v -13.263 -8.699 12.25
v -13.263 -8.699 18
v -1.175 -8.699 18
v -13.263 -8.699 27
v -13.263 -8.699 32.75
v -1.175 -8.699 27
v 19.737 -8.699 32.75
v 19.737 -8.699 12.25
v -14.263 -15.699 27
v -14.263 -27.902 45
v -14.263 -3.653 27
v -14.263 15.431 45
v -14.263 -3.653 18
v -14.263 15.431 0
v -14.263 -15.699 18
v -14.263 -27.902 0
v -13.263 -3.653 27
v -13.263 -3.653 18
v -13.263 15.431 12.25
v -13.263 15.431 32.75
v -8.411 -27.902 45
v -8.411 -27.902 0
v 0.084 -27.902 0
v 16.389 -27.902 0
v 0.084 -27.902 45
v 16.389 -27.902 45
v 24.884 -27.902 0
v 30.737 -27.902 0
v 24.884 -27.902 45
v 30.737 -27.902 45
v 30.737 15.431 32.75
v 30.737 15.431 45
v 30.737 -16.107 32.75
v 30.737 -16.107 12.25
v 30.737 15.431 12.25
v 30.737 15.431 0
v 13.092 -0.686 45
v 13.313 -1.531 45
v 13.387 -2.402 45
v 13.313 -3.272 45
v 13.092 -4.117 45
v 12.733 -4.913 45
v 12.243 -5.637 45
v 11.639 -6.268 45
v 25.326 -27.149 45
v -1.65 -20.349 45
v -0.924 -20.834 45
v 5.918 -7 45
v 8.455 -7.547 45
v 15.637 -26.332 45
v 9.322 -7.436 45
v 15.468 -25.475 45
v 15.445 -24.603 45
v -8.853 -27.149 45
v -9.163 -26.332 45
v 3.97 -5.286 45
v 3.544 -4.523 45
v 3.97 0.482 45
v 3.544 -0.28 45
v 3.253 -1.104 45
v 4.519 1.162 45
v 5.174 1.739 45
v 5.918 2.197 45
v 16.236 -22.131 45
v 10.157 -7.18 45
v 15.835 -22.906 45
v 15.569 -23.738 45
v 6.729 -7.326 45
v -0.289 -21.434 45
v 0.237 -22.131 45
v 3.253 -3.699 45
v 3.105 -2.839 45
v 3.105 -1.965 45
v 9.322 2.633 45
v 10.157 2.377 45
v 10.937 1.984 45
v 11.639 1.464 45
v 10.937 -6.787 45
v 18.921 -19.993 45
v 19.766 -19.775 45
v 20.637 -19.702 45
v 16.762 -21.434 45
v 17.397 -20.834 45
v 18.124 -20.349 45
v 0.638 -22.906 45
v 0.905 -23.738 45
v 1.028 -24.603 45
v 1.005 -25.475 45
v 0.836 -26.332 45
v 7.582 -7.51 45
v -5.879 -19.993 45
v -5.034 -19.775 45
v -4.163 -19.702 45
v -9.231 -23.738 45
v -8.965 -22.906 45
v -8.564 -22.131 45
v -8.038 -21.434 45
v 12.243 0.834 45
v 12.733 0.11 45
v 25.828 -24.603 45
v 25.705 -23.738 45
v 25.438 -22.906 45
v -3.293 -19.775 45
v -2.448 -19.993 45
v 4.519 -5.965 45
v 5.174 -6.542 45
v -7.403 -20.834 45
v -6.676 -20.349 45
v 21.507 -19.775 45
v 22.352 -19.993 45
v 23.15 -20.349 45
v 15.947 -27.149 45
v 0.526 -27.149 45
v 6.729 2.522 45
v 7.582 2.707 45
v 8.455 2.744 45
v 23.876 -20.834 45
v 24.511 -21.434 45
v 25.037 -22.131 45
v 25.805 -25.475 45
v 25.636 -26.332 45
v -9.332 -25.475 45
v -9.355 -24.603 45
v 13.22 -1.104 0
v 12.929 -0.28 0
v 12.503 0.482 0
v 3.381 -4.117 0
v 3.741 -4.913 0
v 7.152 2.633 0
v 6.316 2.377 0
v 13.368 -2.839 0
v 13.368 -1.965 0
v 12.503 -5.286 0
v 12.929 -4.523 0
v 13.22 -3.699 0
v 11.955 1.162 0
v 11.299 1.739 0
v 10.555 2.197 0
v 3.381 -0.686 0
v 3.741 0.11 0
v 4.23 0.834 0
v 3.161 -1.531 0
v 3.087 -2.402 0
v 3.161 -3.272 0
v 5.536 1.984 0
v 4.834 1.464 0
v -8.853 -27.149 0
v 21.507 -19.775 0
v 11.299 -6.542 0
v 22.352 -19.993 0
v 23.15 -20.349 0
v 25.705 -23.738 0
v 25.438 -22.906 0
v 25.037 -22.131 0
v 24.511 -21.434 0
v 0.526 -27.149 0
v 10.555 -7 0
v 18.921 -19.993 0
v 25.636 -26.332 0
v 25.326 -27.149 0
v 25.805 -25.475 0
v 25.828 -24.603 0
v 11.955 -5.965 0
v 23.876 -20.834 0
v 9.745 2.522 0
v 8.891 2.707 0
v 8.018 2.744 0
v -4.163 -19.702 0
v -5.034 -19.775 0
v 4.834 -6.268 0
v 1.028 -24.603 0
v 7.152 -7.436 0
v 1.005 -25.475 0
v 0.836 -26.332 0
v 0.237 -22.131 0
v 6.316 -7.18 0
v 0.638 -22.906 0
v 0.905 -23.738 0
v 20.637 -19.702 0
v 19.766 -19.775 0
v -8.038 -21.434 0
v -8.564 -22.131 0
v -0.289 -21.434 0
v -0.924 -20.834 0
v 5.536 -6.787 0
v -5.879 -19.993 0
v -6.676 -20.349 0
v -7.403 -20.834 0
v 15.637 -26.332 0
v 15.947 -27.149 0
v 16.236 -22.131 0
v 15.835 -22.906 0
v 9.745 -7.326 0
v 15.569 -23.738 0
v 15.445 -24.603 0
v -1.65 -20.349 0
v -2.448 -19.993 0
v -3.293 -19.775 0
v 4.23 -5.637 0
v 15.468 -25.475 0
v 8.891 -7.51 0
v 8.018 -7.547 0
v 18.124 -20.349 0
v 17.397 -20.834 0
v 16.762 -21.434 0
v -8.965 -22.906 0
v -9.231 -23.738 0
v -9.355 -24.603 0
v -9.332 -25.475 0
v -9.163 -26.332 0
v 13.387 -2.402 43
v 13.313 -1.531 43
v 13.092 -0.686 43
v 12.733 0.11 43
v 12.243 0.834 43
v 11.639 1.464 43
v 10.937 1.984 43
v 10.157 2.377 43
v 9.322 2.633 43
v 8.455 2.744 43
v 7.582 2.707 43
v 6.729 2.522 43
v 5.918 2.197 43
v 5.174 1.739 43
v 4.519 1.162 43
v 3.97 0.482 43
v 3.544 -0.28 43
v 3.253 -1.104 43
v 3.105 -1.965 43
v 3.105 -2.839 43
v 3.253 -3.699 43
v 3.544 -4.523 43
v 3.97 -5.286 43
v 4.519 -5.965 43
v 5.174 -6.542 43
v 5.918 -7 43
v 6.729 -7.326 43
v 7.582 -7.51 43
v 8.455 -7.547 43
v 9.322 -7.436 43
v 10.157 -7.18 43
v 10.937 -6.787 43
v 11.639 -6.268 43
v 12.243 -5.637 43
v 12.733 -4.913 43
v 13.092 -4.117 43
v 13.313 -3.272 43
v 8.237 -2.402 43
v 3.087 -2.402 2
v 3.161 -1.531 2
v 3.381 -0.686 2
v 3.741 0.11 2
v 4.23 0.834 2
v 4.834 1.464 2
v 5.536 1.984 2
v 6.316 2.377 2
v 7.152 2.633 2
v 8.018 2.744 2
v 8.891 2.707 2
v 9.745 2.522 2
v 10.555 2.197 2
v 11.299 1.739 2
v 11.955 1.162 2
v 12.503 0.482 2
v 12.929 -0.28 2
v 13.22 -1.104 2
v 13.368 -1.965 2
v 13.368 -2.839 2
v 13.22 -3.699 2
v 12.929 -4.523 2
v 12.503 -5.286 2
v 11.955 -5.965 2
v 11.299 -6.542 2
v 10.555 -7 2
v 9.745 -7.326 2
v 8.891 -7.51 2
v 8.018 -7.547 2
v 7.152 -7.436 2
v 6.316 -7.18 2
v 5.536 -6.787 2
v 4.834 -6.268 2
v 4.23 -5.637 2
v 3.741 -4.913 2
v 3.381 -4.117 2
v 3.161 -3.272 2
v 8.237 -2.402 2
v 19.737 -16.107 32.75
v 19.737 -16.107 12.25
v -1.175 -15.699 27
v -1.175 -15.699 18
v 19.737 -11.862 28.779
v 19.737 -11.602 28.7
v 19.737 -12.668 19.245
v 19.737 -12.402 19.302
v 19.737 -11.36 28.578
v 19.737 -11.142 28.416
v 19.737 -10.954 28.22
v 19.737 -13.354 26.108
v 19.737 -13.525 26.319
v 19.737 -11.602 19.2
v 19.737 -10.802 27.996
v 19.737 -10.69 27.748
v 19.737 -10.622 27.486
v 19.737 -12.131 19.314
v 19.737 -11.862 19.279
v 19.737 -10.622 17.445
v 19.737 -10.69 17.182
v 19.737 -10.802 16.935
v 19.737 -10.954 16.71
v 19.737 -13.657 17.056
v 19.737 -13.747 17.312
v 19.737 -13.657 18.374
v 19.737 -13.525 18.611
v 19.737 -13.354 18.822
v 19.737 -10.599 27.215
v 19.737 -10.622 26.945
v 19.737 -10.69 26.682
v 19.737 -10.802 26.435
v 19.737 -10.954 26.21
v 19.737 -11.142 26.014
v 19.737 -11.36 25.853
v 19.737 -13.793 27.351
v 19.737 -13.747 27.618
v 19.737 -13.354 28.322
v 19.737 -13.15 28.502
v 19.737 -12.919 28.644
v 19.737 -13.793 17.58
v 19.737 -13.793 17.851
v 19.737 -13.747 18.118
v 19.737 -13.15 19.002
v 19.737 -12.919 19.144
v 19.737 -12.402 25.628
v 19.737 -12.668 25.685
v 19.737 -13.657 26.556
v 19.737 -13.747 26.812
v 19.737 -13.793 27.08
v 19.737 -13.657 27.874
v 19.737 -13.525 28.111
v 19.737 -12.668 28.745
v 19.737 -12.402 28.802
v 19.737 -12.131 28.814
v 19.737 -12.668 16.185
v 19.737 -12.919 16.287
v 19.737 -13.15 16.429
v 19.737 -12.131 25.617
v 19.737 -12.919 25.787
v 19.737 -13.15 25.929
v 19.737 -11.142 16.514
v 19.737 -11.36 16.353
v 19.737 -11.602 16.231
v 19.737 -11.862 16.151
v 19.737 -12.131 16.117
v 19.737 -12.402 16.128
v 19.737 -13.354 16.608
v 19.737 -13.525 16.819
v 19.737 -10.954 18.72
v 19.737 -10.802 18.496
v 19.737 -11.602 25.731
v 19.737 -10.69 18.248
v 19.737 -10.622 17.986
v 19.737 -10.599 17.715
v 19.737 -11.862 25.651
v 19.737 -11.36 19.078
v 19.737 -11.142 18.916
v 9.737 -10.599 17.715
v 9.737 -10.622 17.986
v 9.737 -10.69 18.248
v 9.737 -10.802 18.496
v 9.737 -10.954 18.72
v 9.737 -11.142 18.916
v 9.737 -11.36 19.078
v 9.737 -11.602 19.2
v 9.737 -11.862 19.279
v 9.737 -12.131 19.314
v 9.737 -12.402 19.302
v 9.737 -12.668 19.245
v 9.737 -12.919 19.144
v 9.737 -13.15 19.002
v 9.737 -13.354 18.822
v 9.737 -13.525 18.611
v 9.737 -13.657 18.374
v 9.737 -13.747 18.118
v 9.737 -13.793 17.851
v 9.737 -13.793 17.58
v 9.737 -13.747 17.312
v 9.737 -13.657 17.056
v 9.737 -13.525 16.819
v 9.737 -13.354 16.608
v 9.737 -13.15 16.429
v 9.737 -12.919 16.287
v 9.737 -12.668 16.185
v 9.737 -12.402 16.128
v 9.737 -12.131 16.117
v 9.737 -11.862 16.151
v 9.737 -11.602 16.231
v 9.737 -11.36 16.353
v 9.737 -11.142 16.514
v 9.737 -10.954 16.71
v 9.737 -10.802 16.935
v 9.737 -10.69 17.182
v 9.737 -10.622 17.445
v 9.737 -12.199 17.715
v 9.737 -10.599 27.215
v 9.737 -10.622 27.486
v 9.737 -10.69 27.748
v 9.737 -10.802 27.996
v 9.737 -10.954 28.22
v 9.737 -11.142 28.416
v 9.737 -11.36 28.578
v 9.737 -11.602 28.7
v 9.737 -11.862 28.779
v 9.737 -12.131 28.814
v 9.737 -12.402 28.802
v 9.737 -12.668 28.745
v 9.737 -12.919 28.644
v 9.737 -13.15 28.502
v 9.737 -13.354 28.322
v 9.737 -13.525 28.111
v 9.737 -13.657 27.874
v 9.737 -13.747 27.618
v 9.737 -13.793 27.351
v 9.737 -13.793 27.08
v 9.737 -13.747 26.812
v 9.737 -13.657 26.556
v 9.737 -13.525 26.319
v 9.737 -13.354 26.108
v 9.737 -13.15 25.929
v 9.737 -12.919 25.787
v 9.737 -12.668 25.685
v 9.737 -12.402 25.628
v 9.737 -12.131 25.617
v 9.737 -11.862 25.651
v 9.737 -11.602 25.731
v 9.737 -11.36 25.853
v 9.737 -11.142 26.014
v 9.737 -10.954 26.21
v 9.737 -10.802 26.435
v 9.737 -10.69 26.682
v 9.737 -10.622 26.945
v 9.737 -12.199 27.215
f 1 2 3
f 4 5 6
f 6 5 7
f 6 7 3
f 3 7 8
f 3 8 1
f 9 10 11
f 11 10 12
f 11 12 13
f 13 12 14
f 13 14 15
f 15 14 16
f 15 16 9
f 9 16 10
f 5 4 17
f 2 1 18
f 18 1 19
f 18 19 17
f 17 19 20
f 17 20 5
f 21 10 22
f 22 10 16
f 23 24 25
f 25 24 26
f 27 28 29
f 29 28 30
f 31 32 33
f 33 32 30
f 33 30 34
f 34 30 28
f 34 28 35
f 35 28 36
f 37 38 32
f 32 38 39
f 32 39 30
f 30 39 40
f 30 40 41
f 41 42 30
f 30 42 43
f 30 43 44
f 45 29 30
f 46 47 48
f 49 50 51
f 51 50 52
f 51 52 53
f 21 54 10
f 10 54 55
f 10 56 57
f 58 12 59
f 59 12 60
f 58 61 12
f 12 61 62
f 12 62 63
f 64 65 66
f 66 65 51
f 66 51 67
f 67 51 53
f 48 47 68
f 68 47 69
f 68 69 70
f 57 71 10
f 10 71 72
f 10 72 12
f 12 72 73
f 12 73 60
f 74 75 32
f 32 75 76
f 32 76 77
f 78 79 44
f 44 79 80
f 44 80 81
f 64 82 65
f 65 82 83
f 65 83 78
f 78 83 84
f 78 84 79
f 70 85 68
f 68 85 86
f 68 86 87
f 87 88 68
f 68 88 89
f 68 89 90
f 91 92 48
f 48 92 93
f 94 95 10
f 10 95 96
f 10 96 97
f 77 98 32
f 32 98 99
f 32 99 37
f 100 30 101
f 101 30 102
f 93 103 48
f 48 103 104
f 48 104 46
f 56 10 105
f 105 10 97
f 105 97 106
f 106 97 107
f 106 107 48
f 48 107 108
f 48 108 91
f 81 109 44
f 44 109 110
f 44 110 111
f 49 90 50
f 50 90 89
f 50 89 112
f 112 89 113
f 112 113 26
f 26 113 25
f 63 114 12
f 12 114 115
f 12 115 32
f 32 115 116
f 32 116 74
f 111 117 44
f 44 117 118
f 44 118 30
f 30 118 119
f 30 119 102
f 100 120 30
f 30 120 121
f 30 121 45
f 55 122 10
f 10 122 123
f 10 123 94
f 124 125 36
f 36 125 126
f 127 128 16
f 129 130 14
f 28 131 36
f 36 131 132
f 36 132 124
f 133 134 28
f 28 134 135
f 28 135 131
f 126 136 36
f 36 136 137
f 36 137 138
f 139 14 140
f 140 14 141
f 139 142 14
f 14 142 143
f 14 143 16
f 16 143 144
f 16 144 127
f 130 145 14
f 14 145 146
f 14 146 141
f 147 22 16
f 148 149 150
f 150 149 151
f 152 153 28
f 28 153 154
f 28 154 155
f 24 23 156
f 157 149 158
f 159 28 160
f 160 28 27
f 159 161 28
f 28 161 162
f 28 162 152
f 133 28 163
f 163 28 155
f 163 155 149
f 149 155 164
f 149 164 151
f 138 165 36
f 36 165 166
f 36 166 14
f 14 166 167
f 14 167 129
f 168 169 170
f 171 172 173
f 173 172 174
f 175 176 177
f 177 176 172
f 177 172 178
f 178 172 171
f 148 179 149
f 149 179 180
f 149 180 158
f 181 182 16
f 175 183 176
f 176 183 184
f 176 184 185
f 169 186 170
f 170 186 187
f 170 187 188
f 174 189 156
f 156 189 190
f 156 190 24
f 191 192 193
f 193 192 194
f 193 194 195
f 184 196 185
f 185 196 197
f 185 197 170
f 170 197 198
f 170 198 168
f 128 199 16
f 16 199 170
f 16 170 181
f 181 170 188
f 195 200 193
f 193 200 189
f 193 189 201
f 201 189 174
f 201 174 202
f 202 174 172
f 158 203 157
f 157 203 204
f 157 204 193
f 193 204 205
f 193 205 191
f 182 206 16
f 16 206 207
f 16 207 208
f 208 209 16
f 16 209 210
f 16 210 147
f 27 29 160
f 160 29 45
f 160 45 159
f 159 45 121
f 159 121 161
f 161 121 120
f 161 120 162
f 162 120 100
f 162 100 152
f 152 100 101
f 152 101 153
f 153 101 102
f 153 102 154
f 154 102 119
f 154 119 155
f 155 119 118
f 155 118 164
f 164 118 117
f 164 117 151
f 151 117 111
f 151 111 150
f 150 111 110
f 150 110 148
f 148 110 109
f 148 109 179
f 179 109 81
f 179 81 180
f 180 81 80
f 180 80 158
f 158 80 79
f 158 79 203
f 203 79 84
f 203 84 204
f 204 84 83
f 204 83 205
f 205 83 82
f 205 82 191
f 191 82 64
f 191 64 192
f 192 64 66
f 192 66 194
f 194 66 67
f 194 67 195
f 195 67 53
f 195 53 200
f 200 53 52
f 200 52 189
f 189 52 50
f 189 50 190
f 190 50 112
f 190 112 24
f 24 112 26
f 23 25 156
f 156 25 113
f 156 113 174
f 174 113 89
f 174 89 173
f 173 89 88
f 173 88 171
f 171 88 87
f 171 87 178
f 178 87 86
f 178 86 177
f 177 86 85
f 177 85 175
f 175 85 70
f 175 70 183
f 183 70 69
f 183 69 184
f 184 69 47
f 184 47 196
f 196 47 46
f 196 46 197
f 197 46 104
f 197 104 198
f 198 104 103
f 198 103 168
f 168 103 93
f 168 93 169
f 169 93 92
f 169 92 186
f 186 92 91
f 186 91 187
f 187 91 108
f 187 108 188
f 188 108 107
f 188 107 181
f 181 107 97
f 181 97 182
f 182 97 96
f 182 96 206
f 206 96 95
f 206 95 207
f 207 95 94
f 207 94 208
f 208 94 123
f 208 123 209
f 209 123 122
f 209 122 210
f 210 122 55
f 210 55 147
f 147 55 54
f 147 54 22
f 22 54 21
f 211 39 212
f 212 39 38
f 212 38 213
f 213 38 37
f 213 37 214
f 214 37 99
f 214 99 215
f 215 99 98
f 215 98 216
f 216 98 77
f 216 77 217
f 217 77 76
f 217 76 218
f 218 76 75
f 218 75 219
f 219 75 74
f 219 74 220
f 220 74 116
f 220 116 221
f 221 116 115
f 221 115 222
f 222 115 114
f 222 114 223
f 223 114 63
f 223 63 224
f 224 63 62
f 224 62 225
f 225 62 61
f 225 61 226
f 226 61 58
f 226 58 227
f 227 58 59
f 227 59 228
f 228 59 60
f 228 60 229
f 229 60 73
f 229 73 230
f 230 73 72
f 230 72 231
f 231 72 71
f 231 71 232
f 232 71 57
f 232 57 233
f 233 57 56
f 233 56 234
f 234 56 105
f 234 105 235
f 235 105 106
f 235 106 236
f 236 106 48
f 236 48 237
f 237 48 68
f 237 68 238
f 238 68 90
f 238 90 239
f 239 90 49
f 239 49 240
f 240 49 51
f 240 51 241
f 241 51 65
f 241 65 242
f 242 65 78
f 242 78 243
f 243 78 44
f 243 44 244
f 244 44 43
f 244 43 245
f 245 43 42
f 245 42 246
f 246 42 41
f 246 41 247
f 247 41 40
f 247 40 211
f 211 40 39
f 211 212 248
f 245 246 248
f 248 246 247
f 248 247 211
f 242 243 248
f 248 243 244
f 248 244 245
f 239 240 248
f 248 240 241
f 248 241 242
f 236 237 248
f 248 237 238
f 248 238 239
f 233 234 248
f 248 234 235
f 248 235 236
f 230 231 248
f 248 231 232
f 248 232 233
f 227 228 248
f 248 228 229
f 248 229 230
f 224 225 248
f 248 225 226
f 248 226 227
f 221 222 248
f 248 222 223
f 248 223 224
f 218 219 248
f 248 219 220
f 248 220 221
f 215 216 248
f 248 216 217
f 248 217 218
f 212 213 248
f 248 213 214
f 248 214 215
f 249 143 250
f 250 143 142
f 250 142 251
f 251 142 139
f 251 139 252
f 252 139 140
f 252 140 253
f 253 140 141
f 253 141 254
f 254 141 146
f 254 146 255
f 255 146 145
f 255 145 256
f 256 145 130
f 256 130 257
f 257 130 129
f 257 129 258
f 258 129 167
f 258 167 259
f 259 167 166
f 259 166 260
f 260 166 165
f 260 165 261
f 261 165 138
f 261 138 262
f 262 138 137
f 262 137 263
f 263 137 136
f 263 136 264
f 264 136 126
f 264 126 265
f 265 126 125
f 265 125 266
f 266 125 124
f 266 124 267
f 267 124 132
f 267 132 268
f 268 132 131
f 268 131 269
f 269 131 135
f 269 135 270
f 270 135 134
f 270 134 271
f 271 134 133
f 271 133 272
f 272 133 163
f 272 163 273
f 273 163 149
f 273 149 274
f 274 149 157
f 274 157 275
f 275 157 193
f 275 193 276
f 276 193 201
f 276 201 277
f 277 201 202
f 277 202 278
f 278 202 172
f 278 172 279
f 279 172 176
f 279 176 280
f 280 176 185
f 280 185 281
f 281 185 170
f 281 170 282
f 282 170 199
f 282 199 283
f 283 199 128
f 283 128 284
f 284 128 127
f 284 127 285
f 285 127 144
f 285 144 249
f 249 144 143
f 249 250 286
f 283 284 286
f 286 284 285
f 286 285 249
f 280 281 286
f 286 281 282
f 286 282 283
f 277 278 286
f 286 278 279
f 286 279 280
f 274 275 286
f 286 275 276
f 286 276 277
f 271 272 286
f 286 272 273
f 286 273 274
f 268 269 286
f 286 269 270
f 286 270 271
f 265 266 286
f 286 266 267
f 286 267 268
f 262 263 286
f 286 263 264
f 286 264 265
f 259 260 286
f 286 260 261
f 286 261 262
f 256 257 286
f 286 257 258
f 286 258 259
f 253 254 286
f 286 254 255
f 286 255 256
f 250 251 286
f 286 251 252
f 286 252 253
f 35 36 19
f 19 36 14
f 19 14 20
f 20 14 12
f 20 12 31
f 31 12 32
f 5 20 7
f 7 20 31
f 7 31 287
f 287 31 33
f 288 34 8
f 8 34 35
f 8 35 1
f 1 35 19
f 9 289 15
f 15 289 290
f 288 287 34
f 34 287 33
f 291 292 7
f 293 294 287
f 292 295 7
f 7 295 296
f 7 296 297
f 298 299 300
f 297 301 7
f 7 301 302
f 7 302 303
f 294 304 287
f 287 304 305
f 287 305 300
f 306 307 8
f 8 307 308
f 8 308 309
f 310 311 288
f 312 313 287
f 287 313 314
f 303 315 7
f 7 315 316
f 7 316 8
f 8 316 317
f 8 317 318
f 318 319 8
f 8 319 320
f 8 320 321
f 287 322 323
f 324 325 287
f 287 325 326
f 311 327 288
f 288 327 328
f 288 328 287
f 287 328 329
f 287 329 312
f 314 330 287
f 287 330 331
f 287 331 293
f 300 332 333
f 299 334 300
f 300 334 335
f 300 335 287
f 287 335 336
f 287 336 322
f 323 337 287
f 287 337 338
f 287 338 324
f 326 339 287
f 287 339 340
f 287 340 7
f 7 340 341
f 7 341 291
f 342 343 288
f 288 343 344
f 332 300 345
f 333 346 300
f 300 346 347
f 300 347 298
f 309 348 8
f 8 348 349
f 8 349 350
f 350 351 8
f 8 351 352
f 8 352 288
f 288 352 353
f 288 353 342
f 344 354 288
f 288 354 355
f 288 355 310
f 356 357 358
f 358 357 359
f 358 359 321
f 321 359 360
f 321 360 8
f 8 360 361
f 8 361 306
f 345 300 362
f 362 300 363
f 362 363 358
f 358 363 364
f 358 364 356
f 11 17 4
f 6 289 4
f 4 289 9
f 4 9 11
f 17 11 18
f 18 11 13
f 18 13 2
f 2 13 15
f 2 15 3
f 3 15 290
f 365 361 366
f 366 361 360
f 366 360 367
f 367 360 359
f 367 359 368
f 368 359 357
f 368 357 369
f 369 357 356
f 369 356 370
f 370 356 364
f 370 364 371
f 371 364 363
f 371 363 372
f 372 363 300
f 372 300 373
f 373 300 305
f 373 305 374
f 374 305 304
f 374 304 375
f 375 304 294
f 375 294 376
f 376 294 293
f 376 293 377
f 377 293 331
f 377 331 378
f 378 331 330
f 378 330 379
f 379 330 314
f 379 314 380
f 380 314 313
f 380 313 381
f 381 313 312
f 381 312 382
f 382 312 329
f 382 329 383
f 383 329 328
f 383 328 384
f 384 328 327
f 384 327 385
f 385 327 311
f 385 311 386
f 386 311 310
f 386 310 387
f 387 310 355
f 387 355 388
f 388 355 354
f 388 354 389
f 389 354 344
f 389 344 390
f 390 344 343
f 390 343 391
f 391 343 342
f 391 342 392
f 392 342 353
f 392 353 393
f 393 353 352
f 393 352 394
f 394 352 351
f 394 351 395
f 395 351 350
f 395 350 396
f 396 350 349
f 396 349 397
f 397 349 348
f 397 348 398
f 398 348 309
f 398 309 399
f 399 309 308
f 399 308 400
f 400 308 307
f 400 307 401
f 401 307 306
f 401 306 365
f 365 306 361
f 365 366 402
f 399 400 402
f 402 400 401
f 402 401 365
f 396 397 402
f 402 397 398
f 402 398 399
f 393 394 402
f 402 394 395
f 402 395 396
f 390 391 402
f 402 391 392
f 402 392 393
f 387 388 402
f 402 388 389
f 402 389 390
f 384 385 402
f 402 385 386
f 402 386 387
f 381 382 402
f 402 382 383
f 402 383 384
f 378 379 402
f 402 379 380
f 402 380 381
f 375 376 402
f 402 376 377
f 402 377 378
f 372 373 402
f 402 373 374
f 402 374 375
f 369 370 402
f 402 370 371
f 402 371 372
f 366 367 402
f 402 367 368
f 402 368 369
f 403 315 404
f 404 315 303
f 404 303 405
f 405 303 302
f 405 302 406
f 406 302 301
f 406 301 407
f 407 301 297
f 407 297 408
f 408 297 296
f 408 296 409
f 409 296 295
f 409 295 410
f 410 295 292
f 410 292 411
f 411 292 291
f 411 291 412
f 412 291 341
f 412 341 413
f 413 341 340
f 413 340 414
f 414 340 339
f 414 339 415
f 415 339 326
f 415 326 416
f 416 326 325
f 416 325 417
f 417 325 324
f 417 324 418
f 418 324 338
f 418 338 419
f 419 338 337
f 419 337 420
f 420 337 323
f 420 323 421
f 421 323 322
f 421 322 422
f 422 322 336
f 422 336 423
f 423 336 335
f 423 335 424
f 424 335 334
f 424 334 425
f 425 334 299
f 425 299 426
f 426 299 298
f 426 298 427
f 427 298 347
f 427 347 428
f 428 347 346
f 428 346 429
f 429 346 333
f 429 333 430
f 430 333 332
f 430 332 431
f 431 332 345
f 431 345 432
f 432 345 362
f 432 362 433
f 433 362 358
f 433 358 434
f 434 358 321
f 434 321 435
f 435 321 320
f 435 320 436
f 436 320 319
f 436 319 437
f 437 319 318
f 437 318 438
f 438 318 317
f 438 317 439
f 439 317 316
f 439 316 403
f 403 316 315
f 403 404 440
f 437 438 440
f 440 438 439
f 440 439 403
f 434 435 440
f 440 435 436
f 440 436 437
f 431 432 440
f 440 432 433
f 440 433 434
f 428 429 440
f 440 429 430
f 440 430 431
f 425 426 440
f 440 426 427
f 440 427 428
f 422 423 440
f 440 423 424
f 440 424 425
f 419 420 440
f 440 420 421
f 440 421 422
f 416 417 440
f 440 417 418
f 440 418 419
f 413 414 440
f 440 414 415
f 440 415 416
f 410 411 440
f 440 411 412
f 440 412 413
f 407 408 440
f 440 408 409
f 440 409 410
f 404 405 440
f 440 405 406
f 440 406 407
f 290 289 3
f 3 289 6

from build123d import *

# Parameters (mm, degrees)
SKETCH1_W                = 45
SKETCH1_H                = 50
BOSS_EXTRUDE1_DEPTH      = 45
SKETCH2_R                = 5.2
CUT_EXTRUDE1_DEPTH       = 45
SKETCH9_R                = 5.15
CUT_EXTRUDE6_DEPTH       = 2
SKETCH10_R               = 5.15
CUT_EXTRUDE7_DEPTH       = 2
SKETCH12_R               = 12.7
CUT_EXTRUDE8_DEPTH       = 46
SKETCH13_W               = 45
SKETCH13_H               = 6.66747138
CUT_EXTRUDE9_DEPTH       = 46
SKETCH16_R               = 13.25
SKETCH16_R_2             = 3.75
BOSS_EXTRUDE3_DEPTH      = 2
SKETCH20_R               = 12.7
BOSS_EXTRUDE4_DEPTH      = 45
SKETCH21_W               = 20.5
SKETCH21_H               = 40.5
CUT_EXTRUDE10_DEPTH      = 44
SKETCH22_R               = 2.15
BOSS_EXTRUDE5_DEPTH      = 44
SKETCH26_W               = 5.127085864
SKETCH26_H               = 8
CUT_EXTRUDE16_DEPTH      = 7
SKETCH28_R               = 2.15
BOSS_EXTRUDE6_DEPTH      = 44
SKETCH29_R               = 2.15
CUT_EXTRUDE18_DEPTH      = 10
SKETCH30_W               = 8
SKETCH30_H               = 7
CUT_EXTRUDE19_DEPTH      = 7
CUT_EXTRUDE19_DEPTH_BACK = 7
SKETCH31_W               = 20.5
SKETCH31_H               = 7.407828578
CUT_EXTRUDE20_DEPTH      = 11
SKETCH32_W               = 9
SKETCH32_H               = 5.046358254
CUT_EXTRUDE21_DEPTH      = 14
SKETCH33_W               = 8.088030226
SKETCH33_H               = 9
CUT_EXTRUDE22_DEPTH      = 7
SKETCH34_R               = 1.6
CUT_EXTRUDE23_DEPTH      = 10
SKETCH35_W               = 5
SKETCH35_H               = 9
CUT_EXTRUDE24_DEPTH      = 7


with BuildPart() as part:
    # Sketch1 → Boss-Extrude1 (new body)
    with BuildSketch(Plane.XY):
        with Locations((8.236607143, -2.901785714)):
            Rectangle(SKETCH1_W, SKETCH1_H)
    extrude(amount=BOSS_EXTRUDE1_DEPTH)

    # Sketch2 → Cut-Extrude1 (cut)
    with BuildSketch(Plane.XY.offset(45)):
        with Locations((-4.163392857, -24.901785714)):
            Circle(SKETCH2_R)
        with Locations((20.636607143, -24.901785714)):
            Circle(SKETCH2_R)
    extrude(amount=-CUT_EXTRUDE1_DEPTH, mode=Mode.SUBTRACT)

    # Sketch9 → Cut-Extrude6 (cut)
    with BuildSketch(Plane.XY.offset(45)):
        with Locations((8.236607143, -2.401785714)):
            Circle(SKETCH9_R)
    extrude(amount=-CUT_EXTRUDE6_DEPTH, mode=Mode.SUBTRACT)

    # Sketch10 → Cut-Extrude7 (cut)
    with BuildSketch(Plane(origin=(0, 0, 0), x_dir=(-1, 0, 0), z_dir=(0, 0, -1))):
        with Locations((-8.236607143, -2.401785714)):
            Circle(SKETCH10_R)
    extrude(amount=-CUT_EXTRUDE7_DEPTH, mode=Mode.SUBTRACT)

    # Sketch12 → Cut-Extrude8 (cut)
    with BuildSketch(Plane.ZY.offset(14.263392857)):
        with Locations((22.5, 0)):
            Circle(SKETCH12_R)
    extrude(amount=-CUT_EXTRUDE8_DEPTH, mode=Mode.SUBTRACT)

    # Sketch13 → Cut-Extrude9 (cut)
    with BuildSketch(Plane.ZY.offset(14.263392857)):
        with Locations((22.5, 18.764478596)):
            Rectangle(SKETCH13_W, SKETCH13_H)
    extrude(amount=-CUT_EXTRUDE9_DEPTH, mode=Mode.SUBTRACT)

    # Sketch16 → Boss-Extrude3 (add)
    with BuildSketch(Plane(origin=(30.736607143, 0, 0), x_dir=(0, 0, -1), z_dir=(1, 0, 0))):
        with Locations((-22.5, 0)):
            Circle(SKETCH16_R)
        with Locations((-22.5, 0)):
            Circle(SKETCH16_R_2, mode=Mode.SUBTRACT)
    extrude(amount=-BOSS_EXTRUDE3_DEPTH)

    # Sketch20 → Boss-Extrude4 (add)
    with BuildSketch(Plane.ZY.offset(14.263392857)):
        with Locations((22.5, 0)):
            Circle(SKETCH20_R)
    extrude(amount=-BOSS_EXTRUDE4_DEPTH)

    # Sketch21 → Cut-Extrude10 (cut)
    with BuildSketch(Plane(origin=(30.736607143, 0, 0), x_dir=(0, 0, -1), z_dir=(1, 0, 0))):
        with Locations((-22.5, 3.75)):
            Rectangle(SKETCH21_W, SKETCH21_H)
    extrude(amount=-CUT_EXTRUDE10_DEPTH, mode=Mode.SUBTRACT)

    # Sketch22 → Boss-Extrude5 (add)
    with BuildSketch(Plane(origin=(30.736607143, 0, 0), x_dir=(0, 0, -1), z_dir=(1, 0, 0))):
        Polygon((-32.5, -8.699027625), (-12.5, -8.699027625), (-12.25, -8.699027625), (-12.25, -16.5), (-32.75, -16.5), (-32.75, -8.699027625), align=None)
        with Locations((-27.215250341, -10.949027625)):
            Circle(SKETCH22_R, mode=Mode.SUBTRACT)
        with Locations((-17.715250341, -10.949027625)):
            Circle(SKETCH22_R, mode=Mode.SUBTRACT)
    extrude(amount=-BOSS_EXTRUDE5_DEPTH)

    # Sketch26 → Cut-Extrude16 (cut)
    with BuildSketch(Plane(origin=(0, -8.699027625, 0), x_dir=(1, 0, 0), z_dir=(0, 1, 0))):
        with Locations((-10.699849925, -22.5)):
            Rectangle(SKETCH26_W, SKETCH26_H)
    extrude(amount=-CUT_EXTRUDE16_DEPTH, mode=Mode.SUBTRACT)

    # Sketch28 → Boss-Extrude6 (add)
    with BuildSketch(Plane(origin=(30.736607143, 0, 0), x_dir=(0, 0, -1), z_dir=(1, 0, 0))):
        with Locations((-27.215250341, -10.949027625)):
            Circle(SKETCH28_R)
        with Locations((-17.715250341, -10.949027625)):
            Circle(SKETCH28_R)
    extrude(amount=-BOSS_EXTRUDE6_DEPTH)

    # Sketch29 → Cut-Extrude18 (cut)
    with BuildSketch(Plane(origin=(30.736607143, 0, 0), x_dir=(0, 0, -1), z_dir=(1, 0, 0))):
        with Locations((-27.215250341, -12.199027625)):
            Circle(SKETCH29_R)
        with Locations((-17.715250341, -12.199027625)):
            Circle(SKETCH29_R)
    extrude(amount=-CUT_EXTRUDE18_DEPTH, mode=Mode.SUBTRACT)

    # Sketch30 → Cut-Extrude19 (cut, two sides)
    with BuildSketch(Plane(origin=(-13.263392857, 0, 0), x_dir=(0, 0, -1), z_dir=(1, 0, 0))) as cut_extrude19_sk:
        with Locations((-22.5, -12.199027625)):
            Rectangle(SKETCH30_W, SKETCH30_H)
    extrude(amount=CUT_EXTRUDE19_DEPTH, mode=Mode.SUBTRACT)
    extrude(cut_extrude19_sk.sketch, amount=-CUT_EXTRUDE19_DEPTH_BACK, mode=Mode.SUBTRACT)

    # Sketch31 → Cut-Extrude20 (cut)
    with BuildSketch(Plane(origin=(30.736607143, 0, 0), x_dir=(0, 0, -1), z_dir=(1, 0, 0))):
        with Locations((-22.5, -12.402941914)):
            Rectangle(SKETCH31_W, SKETCH31_H)
    extrude(amount=-CUT_EXTRUDE20_DEPTH, mode=Mode.SUBTRACT)

    # Sketch32 → Cut-Extrude21 (cut)
    with BuildSketch(Plane(origin=(-13.263392857, 0, 0), x_dir=(0, 0, -1), z_dir=(1, 0, 0))):
        with Locations((-22.5, -6.175848498)):
            Rectangle(SKETCH32_W, SKETCH32_H)
    extrude(amount=-CUT_EXTRUDE21_DEPTH, mode=Mode.SUBTRACT)

    # Sketch33 → Cut-Extrude22 (cut)
    with BuildSketch(Plane(origin=(0, -8.699027625, 0), x_dir=(1, 0, 0), z_dir=(0, 1, 0))):
        with Locations((-10.219377744, -22.5)):
            Rectangle(SKETCH33_W, SKETCH33_H)
    extrude(amount=-CUT_EXTRUDE22_DEPTH, mode=Mode.SUBTRACT)

    # Sketch34 → Cut-Extrude23 (cut)
    with BuildSketch(Plane(origin=(19.736607143, 0, 0), x_dir=(0, 0, -1), z_dir=(1, 0, 0))):
        with Locations((-27.215250341, -12.199027625)):
            Circle(SKETCH34_R)
        with Locations((-17.715250341, -12.199027625)):
            Circle(SKETCH34_R)
    extrude(amount=-CUT_EXTRUDE23_DEPTH, mode=Mode.SUBTRACT)

    # Sketch35 → Cut-Extrude24 (cut)
    with BuildSketch(Plane(origin=(0, -8.699027625, 0), x_dir=(1, 0, 0), z_dir=(0, 1, 0))):
        with Locations((-3.675362631, -22.5)):
            Rectangle(SKETCH35_W, SKETCH35_H)
    extrude(amount=-CUT_EXTRUDE24_DEPTH, mode=Mode.SUBTRACT)


solid = part.part
